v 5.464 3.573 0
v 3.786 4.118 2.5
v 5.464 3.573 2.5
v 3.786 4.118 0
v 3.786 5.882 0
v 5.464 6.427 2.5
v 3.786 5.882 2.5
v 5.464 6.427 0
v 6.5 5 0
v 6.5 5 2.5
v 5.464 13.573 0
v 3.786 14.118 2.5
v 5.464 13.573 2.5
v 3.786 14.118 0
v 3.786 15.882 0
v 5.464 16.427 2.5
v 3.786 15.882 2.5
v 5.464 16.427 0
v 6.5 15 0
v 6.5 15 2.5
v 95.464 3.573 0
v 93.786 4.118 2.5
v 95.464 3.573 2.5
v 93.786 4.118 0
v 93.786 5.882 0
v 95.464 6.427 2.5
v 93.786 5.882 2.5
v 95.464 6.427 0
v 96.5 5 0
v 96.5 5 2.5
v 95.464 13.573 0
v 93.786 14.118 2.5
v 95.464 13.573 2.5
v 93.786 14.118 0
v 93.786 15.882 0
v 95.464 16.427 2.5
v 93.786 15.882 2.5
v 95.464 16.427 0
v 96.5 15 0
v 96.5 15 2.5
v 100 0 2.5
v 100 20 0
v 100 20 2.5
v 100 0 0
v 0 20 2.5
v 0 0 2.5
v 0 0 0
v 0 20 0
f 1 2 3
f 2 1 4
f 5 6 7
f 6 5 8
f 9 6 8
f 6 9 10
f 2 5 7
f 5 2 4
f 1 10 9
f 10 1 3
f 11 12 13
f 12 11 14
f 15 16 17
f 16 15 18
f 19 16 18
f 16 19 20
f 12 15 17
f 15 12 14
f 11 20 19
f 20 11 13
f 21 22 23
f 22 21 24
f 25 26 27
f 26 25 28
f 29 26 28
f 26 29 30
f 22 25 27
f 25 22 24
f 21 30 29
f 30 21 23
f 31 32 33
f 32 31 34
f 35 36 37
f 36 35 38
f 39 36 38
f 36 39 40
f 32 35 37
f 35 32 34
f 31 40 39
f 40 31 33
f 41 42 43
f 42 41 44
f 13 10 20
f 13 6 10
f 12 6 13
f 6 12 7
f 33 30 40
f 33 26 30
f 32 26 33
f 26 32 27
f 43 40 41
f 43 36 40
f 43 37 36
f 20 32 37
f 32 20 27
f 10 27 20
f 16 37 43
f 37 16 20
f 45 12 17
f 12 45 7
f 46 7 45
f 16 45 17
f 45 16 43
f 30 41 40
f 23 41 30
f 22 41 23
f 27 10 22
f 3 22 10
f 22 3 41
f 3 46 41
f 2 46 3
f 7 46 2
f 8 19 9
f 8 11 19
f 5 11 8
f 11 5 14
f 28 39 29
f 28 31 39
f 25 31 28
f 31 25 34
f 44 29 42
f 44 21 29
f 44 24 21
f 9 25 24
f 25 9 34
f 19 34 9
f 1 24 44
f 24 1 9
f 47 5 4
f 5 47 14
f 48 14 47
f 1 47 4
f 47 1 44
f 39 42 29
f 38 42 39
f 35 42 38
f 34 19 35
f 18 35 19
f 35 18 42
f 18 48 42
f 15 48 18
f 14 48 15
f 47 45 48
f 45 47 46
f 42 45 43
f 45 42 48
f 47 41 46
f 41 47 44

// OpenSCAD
// Plate dimensions
plate_length = 100;
plate_width = 20;
plate_thickness = 2.5; // Reduced thickness to match the original model
hole_diameter = 3;
hole_offset = 5;

// Function to create a single plate with four holes
module plate() {
    difference() {
        cube([plate_length, plate_width, plate_thickness]);
        for (x = [hole_offset, plate_length - hole_offset]) {
            for (y = [hole_offset, plate_width - hole_offset]) {
                translate([x, y, -1]) 
                    cylinder(h=plate_thickness + 2, d=hole_diameter);
            }
        }
    }
}

// Render a single plate (removed stacking)
plate();
